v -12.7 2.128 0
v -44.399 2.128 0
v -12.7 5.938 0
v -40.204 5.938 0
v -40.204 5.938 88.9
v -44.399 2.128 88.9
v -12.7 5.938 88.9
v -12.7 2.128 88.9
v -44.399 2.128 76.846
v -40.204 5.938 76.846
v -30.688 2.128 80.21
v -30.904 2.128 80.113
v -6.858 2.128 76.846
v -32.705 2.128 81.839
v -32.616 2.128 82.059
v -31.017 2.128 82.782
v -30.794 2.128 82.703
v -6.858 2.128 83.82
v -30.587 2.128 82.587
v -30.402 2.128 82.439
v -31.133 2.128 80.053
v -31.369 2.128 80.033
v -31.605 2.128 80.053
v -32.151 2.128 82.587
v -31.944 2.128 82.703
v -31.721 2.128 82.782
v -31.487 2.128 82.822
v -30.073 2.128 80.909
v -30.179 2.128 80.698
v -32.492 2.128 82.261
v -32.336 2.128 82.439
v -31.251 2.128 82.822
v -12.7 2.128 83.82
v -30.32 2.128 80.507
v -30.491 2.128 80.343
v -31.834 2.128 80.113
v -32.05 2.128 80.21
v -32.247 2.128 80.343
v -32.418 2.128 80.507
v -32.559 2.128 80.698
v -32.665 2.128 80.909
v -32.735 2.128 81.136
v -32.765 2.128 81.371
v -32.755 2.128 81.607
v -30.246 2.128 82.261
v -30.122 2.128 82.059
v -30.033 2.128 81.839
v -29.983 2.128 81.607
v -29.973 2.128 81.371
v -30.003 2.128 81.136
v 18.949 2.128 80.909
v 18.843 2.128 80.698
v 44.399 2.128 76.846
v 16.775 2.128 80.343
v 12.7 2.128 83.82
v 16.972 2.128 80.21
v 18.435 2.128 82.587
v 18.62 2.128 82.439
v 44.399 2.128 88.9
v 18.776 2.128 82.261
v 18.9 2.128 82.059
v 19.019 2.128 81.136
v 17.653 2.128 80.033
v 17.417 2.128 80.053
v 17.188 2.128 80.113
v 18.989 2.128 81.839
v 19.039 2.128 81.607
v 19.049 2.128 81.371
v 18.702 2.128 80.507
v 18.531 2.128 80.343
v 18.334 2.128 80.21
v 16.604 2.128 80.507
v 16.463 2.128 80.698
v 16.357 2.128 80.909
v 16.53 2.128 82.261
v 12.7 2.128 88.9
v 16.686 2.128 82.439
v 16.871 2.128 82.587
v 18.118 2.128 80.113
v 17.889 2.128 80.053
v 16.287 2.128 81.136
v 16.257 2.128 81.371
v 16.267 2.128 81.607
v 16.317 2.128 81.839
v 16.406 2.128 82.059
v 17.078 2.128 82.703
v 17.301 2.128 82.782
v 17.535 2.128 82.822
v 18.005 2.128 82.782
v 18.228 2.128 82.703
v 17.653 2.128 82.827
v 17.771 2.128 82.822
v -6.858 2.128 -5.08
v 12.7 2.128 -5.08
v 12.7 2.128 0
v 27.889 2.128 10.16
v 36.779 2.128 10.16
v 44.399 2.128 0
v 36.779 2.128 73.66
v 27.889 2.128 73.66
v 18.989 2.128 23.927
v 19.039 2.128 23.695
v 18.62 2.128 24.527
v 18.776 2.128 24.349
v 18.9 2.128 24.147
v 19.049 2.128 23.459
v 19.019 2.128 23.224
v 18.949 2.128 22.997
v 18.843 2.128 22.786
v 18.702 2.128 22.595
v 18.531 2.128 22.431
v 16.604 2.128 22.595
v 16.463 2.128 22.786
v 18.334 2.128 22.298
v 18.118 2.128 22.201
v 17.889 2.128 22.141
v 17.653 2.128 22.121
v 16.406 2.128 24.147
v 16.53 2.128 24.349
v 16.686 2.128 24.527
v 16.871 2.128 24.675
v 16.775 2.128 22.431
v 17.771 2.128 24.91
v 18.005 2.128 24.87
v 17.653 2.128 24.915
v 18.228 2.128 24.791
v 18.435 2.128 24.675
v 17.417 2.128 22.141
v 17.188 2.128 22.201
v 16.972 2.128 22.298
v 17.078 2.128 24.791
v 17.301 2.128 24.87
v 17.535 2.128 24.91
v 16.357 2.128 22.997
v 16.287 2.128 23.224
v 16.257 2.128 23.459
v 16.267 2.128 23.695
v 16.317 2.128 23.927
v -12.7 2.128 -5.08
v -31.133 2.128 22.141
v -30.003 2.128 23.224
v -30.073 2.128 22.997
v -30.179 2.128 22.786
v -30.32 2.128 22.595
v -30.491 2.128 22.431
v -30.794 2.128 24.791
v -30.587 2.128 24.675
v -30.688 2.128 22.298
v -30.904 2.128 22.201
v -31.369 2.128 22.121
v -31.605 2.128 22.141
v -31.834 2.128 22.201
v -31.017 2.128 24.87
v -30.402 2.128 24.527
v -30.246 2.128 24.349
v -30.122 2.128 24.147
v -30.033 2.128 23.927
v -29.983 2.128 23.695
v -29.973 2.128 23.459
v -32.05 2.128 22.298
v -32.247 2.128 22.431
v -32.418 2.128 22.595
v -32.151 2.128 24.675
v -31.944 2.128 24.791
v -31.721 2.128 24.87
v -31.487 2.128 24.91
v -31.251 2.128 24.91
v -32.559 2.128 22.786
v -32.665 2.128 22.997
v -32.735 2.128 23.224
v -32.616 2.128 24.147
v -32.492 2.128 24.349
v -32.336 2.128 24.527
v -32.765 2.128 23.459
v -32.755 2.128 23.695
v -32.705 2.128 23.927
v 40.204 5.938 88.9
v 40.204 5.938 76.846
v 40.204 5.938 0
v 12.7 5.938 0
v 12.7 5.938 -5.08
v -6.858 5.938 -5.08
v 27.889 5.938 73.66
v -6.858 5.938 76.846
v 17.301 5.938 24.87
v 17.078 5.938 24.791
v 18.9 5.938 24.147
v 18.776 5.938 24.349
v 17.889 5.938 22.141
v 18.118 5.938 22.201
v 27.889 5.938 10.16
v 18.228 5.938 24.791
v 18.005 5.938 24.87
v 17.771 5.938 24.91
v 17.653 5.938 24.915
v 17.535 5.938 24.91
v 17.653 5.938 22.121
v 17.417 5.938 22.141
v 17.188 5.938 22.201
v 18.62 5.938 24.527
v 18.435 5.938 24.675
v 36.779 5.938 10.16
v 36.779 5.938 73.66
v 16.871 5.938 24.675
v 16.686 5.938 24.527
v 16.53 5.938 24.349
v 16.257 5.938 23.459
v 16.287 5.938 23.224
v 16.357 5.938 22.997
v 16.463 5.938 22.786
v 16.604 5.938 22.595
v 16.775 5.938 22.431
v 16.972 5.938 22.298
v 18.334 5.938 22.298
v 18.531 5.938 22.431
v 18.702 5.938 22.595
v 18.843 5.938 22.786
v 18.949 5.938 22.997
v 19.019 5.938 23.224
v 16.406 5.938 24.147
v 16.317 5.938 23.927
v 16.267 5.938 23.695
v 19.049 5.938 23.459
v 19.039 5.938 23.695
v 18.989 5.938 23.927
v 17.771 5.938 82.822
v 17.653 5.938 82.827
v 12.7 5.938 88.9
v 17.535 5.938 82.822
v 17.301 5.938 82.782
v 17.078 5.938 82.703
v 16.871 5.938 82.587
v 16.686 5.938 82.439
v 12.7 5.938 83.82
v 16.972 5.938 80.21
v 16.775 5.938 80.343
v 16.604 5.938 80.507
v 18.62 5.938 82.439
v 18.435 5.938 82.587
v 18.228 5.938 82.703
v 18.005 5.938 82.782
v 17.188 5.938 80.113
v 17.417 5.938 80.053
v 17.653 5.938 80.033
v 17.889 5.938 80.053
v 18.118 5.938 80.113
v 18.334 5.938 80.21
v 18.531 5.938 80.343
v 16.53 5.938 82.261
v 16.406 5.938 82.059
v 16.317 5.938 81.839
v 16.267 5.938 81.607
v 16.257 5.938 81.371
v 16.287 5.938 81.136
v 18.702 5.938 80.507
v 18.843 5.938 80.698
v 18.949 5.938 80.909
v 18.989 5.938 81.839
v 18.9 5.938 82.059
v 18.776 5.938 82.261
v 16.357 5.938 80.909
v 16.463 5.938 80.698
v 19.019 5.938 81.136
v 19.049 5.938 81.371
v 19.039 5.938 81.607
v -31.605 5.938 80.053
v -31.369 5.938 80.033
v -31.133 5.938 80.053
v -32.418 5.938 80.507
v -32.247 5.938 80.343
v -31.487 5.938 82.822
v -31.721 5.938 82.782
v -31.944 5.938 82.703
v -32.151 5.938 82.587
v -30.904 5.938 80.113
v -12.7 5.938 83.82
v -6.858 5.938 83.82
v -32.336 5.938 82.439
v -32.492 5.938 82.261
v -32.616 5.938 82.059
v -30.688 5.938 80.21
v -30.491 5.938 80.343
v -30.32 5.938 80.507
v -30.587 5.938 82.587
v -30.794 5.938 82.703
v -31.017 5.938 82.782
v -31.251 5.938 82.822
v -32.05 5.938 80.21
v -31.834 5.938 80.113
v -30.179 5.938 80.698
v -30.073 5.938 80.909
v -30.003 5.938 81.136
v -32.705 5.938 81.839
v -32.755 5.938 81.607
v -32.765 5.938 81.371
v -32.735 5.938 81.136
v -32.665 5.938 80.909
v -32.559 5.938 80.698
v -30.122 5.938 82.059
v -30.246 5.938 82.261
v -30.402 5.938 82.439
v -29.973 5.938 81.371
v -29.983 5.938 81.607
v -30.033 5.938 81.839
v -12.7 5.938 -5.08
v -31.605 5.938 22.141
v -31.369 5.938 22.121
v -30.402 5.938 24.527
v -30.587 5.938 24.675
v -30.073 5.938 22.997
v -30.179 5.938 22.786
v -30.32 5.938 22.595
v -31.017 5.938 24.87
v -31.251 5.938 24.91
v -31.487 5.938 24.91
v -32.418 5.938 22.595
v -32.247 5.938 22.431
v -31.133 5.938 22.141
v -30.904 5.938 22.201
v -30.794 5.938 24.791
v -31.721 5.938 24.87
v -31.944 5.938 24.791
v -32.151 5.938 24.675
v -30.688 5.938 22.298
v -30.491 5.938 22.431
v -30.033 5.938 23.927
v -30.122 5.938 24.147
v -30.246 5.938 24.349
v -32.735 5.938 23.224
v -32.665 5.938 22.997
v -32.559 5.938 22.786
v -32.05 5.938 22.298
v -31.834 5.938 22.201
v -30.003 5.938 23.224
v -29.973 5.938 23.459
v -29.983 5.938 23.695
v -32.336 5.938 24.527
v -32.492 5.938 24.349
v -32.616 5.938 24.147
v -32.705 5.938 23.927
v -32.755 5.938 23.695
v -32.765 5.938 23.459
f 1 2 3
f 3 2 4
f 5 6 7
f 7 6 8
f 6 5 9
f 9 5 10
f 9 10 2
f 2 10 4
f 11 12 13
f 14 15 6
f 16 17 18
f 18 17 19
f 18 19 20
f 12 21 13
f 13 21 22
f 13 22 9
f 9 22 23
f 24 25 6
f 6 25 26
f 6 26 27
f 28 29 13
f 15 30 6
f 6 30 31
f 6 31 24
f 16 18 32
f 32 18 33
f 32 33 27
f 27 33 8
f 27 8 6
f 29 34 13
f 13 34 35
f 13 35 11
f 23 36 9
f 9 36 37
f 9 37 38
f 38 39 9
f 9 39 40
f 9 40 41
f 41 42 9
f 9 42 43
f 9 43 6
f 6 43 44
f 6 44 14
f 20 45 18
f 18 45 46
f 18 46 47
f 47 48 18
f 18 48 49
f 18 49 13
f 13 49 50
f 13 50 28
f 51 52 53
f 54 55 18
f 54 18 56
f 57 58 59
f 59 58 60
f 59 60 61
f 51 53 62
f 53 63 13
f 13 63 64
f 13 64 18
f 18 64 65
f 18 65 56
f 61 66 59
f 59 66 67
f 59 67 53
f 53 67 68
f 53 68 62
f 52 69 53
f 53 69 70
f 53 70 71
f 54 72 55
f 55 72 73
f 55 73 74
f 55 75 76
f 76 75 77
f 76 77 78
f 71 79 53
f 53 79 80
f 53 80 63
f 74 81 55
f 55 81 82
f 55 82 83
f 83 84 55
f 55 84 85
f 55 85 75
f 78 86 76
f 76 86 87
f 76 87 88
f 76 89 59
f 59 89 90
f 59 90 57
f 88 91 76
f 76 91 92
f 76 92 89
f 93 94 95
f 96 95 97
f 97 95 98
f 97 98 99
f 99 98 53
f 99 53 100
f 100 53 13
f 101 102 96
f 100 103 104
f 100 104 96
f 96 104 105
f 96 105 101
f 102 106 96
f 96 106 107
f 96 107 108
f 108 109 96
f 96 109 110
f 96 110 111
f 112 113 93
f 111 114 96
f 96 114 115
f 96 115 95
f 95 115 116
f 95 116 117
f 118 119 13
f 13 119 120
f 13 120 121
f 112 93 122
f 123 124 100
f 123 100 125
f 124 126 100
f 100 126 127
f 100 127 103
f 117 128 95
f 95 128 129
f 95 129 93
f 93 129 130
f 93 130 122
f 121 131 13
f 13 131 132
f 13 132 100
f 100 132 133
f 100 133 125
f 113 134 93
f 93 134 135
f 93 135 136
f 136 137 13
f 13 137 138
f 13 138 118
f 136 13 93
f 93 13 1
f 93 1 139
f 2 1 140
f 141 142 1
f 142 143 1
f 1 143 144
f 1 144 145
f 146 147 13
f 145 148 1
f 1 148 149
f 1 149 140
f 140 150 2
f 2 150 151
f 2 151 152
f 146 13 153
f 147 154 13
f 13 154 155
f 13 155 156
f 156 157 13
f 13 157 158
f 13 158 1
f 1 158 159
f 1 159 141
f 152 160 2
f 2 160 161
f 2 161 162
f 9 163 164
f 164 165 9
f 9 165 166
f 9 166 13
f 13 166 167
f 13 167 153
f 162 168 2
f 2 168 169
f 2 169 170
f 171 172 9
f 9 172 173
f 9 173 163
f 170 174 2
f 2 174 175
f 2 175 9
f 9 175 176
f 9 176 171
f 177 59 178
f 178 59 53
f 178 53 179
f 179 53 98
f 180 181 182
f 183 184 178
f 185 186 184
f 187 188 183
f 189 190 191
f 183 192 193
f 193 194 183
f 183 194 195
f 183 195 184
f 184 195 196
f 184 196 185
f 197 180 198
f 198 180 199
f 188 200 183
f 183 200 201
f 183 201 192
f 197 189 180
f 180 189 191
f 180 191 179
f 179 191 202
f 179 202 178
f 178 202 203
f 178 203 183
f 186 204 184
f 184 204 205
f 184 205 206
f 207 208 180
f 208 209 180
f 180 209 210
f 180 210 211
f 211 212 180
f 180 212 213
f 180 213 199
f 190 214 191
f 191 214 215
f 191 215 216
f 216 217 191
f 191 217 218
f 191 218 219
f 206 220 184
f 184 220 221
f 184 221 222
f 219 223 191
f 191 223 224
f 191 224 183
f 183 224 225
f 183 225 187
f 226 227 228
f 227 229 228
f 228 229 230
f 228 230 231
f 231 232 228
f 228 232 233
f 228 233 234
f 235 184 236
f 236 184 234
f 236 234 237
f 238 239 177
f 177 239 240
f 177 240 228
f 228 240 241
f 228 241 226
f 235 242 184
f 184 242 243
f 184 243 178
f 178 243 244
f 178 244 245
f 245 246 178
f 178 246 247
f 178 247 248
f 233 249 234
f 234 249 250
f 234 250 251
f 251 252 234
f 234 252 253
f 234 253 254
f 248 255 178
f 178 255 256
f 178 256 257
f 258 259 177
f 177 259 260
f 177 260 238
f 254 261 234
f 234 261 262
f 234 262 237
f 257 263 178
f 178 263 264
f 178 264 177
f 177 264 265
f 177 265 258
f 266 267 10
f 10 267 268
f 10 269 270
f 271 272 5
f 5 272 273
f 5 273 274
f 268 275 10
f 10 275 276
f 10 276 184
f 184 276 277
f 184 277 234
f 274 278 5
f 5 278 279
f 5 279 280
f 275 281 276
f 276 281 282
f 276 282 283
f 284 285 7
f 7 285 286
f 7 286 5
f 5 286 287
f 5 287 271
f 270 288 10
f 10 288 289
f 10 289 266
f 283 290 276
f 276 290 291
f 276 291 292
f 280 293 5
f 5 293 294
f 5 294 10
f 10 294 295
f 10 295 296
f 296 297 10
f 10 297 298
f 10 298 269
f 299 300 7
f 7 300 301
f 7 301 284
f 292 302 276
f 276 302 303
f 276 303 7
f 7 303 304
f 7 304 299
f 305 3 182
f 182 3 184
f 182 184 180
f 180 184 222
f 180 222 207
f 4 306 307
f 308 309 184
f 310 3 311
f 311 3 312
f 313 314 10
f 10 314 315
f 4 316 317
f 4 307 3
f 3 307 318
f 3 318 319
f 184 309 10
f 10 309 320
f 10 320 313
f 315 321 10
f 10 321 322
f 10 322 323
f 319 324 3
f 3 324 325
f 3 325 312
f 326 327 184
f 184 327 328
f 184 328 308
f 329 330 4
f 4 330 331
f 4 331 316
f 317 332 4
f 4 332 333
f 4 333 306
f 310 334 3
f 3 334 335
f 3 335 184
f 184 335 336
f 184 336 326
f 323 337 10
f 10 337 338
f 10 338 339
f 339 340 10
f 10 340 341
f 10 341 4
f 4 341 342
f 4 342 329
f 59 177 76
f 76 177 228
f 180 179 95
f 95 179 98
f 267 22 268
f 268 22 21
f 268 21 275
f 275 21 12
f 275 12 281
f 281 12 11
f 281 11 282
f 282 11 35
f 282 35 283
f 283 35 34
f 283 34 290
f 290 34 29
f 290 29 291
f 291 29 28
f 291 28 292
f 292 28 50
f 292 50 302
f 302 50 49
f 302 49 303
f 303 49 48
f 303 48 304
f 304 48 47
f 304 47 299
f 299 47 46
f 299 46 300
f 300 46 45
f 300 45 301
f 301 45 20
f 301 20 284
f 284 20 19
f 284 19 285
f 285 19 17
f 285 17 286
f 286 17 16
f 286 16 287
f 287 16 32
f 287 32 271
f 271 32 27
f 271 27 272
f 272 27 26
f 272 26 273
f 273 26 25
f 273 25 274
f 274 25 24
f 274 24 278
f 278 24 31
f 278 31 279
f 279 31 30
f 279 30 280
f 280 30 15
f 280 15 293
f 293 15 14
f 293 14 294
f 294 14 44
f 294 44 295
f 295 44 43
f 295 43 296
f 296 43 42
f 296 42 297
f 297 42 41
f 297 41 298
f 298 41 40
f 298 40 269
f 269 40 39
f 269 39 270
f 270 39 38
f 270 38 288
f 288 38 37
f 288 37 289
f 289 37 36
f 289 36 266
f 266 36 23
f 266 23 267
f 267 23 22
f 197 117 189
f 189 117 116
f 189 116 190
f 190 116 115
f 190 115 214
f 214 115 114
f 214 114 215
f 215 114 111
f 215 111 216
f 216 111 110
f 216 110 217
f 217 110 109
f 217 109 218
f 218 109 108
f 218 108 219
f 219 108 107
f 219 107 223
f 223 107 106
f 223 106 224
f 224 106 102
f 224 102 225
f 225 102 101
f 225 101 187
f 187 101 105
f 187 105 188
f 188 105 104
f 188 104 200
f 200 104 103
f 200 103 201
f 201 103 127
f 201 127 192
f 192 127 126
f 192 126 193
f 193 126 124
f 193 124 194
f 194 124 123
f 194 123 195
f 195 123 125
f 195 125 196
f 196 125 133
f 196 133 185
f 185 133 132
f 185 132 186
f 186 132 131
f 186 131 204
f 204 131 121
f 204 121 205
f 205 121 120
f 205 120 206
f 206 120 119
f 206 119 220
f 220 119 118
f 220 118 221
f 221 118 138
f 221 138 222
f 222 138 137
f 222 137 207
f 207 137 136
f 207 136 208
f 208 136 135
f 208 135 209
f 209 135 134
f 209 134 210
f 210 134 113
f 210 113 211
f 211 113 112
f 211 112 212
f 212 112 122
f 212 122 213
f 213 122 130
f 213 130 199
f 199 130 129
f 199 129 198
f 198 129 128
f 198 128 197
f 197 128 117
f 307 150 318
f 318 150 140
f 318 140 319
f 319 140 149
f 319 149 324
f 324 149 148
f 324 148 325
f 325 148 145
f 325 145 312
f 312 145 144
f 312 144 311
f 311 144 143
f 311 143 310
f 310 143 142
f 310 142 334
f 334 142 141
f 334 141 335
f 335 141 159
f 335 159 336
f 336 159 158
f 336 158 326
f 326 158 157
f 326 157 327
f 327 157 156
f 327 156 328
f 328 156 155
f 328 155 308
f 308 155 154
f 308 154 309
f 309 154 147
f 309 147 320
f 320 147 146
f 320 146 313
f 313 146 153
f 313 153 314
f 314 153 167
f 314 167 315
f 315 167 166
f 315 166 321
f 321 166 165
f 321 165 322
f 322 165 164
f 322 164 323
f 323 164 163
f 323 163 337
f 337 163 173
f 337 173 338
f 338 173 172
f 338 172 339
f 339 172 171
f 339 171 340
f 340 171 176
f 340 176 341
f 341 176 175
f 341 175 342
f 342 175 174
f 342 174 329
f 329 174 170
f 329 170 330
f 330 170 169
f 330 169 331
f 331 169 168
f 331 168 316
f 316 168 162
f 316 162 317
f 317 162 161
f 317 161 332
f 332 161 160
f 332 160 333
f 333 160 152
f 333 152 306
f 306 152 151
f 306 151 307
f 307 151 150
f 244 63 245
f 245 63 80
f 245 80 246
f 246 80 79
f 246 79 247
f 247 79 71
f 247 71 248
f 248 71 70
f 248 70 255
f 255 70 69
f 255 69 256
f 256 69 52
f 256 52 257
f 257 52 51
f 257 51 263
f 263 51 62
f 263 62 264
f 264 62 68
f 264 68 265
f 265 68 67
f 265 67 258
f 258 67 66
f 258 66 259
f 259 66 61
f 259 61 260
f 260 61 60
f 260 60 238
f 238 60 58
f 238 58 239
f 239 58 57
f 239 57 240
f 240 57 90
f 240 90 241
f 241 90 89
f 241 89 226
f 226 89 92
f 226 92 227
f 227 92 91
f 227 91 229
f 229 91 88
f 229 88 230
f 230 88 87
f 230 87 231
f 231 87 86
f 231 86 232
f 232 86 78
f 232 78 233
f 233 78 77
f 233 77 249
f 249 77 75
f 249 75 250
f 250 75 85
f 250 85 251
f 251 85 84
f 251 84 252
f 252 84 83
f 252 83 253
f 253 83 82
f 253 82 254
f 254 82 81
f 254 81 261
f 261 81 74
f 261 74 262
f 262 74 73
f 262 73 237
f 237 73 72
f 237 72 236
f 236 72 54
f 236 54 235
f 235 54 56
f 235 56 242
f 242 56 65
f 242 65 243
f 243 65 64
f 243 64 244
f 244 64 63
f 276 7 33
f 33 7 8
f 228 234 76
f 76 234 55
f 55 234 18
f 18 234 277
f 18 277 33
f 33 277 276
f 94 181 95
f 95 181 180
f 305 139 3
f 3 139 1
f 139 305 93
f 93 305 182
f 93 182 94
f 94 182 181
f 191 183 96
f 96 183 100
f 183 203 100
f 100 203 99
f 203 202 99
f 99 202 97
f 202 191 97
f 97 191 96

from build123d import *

# Parameters (mm, degrees)
BOSS_EXTRUDE1_DEPTH = 88.9
SKETCH2_R           = 1.397
CUT_EXTRUDE1_DEPTH  = 100.443456884
SKETCH3_W           = 25.4
SKETCH3_H           = 5.08
CUT_EXTRUDE2_DEPTH  = 100.443456884
SKETCH5_W           = 25.4
SKETCH5_H           = 10.16
BOSS_EXTRUDE3_DEPTH = 3.81
SKETCH6_W           = 8.89
SKETCH6_H           = 63.5
CUT_EXTRUDE3_DEPTH  = 100.443456884


with BuildPart() as part:
    # Sketch1 → Boss-Extrude1 (new body)
    with BuildSketch(Plane.XY):
        Polygon((-40.203883769, 5.937788296), (40.203883769, 5.937788296), (44.399042974, 2.127788296), (-44.399042974, 2.127788296), align=None)
    extrude(amount=BOSS_EXTRUDE1_DEPTH)

    # Sketch2 → Cut-Extrude1 (cut, through all)
    with BuildSketch(Plane.XZ.offset(-2.127788296)):
        with Locations(Location((-31.369, 81.429995649, 0), (0, 0, 270))):
            Circle(SKETCH2_R)
        with Locations(Location((17.653, 23.517995649, 0), (0, 0, 270))):
            Circle(SKETCH2_R)
        with Locations(Location((-31.369, 23.517995649, 0), (0, 0, 270))):
            Circle(SKETCH2_R)
        with Locations(Location((17.653, 81.429995649, 0), (0, 0, 270))):
            Circle(SKETCH2_R)
    extrude(amount=-CUT_EXTRUDE1_DEPTH, mode=Mode.SUBTRACT)

    # Sketch3 → Cut-Extrude2 (cut, through all)
    with BuildSketch(Plane.XZ.offset(-2.127788296)):
        with Locations((0, 86.36)):
            Rectangle(SKETCH3_W, SKETCH3_H)
        with Locations((0, 2.54)):
            Rectangle(SKETCH3_W, SKETCH3_H)
    extrude(amount=-CUT_EXTRUDE2_DEPTH, mode=Mode.SUBTRACT)

    # Sketch5 → Boss-Extrude3 (add)
    with BuildSketch(Plane.XZ.offset(-2.127788296)):
        Rectangle(SKETCH5_W, SKETCH5_H)
    extrude(amount=-BOSS_EXTRUDE3_DEPTH)

    # Sketch6 → Cut-Extrude3 (cut, through all)
    with BuildSketch(Plane.XZ.offset(-2.127788296)):
        with Locations((32.334042974, 41.91)):
            Rectangle(SKETCH6_W, SKETCH6_H)
    extrude(amount=-CUT_EXTRUDE3_DEPTH, mode=Mode.SUBTRACT)


solid = part.part
